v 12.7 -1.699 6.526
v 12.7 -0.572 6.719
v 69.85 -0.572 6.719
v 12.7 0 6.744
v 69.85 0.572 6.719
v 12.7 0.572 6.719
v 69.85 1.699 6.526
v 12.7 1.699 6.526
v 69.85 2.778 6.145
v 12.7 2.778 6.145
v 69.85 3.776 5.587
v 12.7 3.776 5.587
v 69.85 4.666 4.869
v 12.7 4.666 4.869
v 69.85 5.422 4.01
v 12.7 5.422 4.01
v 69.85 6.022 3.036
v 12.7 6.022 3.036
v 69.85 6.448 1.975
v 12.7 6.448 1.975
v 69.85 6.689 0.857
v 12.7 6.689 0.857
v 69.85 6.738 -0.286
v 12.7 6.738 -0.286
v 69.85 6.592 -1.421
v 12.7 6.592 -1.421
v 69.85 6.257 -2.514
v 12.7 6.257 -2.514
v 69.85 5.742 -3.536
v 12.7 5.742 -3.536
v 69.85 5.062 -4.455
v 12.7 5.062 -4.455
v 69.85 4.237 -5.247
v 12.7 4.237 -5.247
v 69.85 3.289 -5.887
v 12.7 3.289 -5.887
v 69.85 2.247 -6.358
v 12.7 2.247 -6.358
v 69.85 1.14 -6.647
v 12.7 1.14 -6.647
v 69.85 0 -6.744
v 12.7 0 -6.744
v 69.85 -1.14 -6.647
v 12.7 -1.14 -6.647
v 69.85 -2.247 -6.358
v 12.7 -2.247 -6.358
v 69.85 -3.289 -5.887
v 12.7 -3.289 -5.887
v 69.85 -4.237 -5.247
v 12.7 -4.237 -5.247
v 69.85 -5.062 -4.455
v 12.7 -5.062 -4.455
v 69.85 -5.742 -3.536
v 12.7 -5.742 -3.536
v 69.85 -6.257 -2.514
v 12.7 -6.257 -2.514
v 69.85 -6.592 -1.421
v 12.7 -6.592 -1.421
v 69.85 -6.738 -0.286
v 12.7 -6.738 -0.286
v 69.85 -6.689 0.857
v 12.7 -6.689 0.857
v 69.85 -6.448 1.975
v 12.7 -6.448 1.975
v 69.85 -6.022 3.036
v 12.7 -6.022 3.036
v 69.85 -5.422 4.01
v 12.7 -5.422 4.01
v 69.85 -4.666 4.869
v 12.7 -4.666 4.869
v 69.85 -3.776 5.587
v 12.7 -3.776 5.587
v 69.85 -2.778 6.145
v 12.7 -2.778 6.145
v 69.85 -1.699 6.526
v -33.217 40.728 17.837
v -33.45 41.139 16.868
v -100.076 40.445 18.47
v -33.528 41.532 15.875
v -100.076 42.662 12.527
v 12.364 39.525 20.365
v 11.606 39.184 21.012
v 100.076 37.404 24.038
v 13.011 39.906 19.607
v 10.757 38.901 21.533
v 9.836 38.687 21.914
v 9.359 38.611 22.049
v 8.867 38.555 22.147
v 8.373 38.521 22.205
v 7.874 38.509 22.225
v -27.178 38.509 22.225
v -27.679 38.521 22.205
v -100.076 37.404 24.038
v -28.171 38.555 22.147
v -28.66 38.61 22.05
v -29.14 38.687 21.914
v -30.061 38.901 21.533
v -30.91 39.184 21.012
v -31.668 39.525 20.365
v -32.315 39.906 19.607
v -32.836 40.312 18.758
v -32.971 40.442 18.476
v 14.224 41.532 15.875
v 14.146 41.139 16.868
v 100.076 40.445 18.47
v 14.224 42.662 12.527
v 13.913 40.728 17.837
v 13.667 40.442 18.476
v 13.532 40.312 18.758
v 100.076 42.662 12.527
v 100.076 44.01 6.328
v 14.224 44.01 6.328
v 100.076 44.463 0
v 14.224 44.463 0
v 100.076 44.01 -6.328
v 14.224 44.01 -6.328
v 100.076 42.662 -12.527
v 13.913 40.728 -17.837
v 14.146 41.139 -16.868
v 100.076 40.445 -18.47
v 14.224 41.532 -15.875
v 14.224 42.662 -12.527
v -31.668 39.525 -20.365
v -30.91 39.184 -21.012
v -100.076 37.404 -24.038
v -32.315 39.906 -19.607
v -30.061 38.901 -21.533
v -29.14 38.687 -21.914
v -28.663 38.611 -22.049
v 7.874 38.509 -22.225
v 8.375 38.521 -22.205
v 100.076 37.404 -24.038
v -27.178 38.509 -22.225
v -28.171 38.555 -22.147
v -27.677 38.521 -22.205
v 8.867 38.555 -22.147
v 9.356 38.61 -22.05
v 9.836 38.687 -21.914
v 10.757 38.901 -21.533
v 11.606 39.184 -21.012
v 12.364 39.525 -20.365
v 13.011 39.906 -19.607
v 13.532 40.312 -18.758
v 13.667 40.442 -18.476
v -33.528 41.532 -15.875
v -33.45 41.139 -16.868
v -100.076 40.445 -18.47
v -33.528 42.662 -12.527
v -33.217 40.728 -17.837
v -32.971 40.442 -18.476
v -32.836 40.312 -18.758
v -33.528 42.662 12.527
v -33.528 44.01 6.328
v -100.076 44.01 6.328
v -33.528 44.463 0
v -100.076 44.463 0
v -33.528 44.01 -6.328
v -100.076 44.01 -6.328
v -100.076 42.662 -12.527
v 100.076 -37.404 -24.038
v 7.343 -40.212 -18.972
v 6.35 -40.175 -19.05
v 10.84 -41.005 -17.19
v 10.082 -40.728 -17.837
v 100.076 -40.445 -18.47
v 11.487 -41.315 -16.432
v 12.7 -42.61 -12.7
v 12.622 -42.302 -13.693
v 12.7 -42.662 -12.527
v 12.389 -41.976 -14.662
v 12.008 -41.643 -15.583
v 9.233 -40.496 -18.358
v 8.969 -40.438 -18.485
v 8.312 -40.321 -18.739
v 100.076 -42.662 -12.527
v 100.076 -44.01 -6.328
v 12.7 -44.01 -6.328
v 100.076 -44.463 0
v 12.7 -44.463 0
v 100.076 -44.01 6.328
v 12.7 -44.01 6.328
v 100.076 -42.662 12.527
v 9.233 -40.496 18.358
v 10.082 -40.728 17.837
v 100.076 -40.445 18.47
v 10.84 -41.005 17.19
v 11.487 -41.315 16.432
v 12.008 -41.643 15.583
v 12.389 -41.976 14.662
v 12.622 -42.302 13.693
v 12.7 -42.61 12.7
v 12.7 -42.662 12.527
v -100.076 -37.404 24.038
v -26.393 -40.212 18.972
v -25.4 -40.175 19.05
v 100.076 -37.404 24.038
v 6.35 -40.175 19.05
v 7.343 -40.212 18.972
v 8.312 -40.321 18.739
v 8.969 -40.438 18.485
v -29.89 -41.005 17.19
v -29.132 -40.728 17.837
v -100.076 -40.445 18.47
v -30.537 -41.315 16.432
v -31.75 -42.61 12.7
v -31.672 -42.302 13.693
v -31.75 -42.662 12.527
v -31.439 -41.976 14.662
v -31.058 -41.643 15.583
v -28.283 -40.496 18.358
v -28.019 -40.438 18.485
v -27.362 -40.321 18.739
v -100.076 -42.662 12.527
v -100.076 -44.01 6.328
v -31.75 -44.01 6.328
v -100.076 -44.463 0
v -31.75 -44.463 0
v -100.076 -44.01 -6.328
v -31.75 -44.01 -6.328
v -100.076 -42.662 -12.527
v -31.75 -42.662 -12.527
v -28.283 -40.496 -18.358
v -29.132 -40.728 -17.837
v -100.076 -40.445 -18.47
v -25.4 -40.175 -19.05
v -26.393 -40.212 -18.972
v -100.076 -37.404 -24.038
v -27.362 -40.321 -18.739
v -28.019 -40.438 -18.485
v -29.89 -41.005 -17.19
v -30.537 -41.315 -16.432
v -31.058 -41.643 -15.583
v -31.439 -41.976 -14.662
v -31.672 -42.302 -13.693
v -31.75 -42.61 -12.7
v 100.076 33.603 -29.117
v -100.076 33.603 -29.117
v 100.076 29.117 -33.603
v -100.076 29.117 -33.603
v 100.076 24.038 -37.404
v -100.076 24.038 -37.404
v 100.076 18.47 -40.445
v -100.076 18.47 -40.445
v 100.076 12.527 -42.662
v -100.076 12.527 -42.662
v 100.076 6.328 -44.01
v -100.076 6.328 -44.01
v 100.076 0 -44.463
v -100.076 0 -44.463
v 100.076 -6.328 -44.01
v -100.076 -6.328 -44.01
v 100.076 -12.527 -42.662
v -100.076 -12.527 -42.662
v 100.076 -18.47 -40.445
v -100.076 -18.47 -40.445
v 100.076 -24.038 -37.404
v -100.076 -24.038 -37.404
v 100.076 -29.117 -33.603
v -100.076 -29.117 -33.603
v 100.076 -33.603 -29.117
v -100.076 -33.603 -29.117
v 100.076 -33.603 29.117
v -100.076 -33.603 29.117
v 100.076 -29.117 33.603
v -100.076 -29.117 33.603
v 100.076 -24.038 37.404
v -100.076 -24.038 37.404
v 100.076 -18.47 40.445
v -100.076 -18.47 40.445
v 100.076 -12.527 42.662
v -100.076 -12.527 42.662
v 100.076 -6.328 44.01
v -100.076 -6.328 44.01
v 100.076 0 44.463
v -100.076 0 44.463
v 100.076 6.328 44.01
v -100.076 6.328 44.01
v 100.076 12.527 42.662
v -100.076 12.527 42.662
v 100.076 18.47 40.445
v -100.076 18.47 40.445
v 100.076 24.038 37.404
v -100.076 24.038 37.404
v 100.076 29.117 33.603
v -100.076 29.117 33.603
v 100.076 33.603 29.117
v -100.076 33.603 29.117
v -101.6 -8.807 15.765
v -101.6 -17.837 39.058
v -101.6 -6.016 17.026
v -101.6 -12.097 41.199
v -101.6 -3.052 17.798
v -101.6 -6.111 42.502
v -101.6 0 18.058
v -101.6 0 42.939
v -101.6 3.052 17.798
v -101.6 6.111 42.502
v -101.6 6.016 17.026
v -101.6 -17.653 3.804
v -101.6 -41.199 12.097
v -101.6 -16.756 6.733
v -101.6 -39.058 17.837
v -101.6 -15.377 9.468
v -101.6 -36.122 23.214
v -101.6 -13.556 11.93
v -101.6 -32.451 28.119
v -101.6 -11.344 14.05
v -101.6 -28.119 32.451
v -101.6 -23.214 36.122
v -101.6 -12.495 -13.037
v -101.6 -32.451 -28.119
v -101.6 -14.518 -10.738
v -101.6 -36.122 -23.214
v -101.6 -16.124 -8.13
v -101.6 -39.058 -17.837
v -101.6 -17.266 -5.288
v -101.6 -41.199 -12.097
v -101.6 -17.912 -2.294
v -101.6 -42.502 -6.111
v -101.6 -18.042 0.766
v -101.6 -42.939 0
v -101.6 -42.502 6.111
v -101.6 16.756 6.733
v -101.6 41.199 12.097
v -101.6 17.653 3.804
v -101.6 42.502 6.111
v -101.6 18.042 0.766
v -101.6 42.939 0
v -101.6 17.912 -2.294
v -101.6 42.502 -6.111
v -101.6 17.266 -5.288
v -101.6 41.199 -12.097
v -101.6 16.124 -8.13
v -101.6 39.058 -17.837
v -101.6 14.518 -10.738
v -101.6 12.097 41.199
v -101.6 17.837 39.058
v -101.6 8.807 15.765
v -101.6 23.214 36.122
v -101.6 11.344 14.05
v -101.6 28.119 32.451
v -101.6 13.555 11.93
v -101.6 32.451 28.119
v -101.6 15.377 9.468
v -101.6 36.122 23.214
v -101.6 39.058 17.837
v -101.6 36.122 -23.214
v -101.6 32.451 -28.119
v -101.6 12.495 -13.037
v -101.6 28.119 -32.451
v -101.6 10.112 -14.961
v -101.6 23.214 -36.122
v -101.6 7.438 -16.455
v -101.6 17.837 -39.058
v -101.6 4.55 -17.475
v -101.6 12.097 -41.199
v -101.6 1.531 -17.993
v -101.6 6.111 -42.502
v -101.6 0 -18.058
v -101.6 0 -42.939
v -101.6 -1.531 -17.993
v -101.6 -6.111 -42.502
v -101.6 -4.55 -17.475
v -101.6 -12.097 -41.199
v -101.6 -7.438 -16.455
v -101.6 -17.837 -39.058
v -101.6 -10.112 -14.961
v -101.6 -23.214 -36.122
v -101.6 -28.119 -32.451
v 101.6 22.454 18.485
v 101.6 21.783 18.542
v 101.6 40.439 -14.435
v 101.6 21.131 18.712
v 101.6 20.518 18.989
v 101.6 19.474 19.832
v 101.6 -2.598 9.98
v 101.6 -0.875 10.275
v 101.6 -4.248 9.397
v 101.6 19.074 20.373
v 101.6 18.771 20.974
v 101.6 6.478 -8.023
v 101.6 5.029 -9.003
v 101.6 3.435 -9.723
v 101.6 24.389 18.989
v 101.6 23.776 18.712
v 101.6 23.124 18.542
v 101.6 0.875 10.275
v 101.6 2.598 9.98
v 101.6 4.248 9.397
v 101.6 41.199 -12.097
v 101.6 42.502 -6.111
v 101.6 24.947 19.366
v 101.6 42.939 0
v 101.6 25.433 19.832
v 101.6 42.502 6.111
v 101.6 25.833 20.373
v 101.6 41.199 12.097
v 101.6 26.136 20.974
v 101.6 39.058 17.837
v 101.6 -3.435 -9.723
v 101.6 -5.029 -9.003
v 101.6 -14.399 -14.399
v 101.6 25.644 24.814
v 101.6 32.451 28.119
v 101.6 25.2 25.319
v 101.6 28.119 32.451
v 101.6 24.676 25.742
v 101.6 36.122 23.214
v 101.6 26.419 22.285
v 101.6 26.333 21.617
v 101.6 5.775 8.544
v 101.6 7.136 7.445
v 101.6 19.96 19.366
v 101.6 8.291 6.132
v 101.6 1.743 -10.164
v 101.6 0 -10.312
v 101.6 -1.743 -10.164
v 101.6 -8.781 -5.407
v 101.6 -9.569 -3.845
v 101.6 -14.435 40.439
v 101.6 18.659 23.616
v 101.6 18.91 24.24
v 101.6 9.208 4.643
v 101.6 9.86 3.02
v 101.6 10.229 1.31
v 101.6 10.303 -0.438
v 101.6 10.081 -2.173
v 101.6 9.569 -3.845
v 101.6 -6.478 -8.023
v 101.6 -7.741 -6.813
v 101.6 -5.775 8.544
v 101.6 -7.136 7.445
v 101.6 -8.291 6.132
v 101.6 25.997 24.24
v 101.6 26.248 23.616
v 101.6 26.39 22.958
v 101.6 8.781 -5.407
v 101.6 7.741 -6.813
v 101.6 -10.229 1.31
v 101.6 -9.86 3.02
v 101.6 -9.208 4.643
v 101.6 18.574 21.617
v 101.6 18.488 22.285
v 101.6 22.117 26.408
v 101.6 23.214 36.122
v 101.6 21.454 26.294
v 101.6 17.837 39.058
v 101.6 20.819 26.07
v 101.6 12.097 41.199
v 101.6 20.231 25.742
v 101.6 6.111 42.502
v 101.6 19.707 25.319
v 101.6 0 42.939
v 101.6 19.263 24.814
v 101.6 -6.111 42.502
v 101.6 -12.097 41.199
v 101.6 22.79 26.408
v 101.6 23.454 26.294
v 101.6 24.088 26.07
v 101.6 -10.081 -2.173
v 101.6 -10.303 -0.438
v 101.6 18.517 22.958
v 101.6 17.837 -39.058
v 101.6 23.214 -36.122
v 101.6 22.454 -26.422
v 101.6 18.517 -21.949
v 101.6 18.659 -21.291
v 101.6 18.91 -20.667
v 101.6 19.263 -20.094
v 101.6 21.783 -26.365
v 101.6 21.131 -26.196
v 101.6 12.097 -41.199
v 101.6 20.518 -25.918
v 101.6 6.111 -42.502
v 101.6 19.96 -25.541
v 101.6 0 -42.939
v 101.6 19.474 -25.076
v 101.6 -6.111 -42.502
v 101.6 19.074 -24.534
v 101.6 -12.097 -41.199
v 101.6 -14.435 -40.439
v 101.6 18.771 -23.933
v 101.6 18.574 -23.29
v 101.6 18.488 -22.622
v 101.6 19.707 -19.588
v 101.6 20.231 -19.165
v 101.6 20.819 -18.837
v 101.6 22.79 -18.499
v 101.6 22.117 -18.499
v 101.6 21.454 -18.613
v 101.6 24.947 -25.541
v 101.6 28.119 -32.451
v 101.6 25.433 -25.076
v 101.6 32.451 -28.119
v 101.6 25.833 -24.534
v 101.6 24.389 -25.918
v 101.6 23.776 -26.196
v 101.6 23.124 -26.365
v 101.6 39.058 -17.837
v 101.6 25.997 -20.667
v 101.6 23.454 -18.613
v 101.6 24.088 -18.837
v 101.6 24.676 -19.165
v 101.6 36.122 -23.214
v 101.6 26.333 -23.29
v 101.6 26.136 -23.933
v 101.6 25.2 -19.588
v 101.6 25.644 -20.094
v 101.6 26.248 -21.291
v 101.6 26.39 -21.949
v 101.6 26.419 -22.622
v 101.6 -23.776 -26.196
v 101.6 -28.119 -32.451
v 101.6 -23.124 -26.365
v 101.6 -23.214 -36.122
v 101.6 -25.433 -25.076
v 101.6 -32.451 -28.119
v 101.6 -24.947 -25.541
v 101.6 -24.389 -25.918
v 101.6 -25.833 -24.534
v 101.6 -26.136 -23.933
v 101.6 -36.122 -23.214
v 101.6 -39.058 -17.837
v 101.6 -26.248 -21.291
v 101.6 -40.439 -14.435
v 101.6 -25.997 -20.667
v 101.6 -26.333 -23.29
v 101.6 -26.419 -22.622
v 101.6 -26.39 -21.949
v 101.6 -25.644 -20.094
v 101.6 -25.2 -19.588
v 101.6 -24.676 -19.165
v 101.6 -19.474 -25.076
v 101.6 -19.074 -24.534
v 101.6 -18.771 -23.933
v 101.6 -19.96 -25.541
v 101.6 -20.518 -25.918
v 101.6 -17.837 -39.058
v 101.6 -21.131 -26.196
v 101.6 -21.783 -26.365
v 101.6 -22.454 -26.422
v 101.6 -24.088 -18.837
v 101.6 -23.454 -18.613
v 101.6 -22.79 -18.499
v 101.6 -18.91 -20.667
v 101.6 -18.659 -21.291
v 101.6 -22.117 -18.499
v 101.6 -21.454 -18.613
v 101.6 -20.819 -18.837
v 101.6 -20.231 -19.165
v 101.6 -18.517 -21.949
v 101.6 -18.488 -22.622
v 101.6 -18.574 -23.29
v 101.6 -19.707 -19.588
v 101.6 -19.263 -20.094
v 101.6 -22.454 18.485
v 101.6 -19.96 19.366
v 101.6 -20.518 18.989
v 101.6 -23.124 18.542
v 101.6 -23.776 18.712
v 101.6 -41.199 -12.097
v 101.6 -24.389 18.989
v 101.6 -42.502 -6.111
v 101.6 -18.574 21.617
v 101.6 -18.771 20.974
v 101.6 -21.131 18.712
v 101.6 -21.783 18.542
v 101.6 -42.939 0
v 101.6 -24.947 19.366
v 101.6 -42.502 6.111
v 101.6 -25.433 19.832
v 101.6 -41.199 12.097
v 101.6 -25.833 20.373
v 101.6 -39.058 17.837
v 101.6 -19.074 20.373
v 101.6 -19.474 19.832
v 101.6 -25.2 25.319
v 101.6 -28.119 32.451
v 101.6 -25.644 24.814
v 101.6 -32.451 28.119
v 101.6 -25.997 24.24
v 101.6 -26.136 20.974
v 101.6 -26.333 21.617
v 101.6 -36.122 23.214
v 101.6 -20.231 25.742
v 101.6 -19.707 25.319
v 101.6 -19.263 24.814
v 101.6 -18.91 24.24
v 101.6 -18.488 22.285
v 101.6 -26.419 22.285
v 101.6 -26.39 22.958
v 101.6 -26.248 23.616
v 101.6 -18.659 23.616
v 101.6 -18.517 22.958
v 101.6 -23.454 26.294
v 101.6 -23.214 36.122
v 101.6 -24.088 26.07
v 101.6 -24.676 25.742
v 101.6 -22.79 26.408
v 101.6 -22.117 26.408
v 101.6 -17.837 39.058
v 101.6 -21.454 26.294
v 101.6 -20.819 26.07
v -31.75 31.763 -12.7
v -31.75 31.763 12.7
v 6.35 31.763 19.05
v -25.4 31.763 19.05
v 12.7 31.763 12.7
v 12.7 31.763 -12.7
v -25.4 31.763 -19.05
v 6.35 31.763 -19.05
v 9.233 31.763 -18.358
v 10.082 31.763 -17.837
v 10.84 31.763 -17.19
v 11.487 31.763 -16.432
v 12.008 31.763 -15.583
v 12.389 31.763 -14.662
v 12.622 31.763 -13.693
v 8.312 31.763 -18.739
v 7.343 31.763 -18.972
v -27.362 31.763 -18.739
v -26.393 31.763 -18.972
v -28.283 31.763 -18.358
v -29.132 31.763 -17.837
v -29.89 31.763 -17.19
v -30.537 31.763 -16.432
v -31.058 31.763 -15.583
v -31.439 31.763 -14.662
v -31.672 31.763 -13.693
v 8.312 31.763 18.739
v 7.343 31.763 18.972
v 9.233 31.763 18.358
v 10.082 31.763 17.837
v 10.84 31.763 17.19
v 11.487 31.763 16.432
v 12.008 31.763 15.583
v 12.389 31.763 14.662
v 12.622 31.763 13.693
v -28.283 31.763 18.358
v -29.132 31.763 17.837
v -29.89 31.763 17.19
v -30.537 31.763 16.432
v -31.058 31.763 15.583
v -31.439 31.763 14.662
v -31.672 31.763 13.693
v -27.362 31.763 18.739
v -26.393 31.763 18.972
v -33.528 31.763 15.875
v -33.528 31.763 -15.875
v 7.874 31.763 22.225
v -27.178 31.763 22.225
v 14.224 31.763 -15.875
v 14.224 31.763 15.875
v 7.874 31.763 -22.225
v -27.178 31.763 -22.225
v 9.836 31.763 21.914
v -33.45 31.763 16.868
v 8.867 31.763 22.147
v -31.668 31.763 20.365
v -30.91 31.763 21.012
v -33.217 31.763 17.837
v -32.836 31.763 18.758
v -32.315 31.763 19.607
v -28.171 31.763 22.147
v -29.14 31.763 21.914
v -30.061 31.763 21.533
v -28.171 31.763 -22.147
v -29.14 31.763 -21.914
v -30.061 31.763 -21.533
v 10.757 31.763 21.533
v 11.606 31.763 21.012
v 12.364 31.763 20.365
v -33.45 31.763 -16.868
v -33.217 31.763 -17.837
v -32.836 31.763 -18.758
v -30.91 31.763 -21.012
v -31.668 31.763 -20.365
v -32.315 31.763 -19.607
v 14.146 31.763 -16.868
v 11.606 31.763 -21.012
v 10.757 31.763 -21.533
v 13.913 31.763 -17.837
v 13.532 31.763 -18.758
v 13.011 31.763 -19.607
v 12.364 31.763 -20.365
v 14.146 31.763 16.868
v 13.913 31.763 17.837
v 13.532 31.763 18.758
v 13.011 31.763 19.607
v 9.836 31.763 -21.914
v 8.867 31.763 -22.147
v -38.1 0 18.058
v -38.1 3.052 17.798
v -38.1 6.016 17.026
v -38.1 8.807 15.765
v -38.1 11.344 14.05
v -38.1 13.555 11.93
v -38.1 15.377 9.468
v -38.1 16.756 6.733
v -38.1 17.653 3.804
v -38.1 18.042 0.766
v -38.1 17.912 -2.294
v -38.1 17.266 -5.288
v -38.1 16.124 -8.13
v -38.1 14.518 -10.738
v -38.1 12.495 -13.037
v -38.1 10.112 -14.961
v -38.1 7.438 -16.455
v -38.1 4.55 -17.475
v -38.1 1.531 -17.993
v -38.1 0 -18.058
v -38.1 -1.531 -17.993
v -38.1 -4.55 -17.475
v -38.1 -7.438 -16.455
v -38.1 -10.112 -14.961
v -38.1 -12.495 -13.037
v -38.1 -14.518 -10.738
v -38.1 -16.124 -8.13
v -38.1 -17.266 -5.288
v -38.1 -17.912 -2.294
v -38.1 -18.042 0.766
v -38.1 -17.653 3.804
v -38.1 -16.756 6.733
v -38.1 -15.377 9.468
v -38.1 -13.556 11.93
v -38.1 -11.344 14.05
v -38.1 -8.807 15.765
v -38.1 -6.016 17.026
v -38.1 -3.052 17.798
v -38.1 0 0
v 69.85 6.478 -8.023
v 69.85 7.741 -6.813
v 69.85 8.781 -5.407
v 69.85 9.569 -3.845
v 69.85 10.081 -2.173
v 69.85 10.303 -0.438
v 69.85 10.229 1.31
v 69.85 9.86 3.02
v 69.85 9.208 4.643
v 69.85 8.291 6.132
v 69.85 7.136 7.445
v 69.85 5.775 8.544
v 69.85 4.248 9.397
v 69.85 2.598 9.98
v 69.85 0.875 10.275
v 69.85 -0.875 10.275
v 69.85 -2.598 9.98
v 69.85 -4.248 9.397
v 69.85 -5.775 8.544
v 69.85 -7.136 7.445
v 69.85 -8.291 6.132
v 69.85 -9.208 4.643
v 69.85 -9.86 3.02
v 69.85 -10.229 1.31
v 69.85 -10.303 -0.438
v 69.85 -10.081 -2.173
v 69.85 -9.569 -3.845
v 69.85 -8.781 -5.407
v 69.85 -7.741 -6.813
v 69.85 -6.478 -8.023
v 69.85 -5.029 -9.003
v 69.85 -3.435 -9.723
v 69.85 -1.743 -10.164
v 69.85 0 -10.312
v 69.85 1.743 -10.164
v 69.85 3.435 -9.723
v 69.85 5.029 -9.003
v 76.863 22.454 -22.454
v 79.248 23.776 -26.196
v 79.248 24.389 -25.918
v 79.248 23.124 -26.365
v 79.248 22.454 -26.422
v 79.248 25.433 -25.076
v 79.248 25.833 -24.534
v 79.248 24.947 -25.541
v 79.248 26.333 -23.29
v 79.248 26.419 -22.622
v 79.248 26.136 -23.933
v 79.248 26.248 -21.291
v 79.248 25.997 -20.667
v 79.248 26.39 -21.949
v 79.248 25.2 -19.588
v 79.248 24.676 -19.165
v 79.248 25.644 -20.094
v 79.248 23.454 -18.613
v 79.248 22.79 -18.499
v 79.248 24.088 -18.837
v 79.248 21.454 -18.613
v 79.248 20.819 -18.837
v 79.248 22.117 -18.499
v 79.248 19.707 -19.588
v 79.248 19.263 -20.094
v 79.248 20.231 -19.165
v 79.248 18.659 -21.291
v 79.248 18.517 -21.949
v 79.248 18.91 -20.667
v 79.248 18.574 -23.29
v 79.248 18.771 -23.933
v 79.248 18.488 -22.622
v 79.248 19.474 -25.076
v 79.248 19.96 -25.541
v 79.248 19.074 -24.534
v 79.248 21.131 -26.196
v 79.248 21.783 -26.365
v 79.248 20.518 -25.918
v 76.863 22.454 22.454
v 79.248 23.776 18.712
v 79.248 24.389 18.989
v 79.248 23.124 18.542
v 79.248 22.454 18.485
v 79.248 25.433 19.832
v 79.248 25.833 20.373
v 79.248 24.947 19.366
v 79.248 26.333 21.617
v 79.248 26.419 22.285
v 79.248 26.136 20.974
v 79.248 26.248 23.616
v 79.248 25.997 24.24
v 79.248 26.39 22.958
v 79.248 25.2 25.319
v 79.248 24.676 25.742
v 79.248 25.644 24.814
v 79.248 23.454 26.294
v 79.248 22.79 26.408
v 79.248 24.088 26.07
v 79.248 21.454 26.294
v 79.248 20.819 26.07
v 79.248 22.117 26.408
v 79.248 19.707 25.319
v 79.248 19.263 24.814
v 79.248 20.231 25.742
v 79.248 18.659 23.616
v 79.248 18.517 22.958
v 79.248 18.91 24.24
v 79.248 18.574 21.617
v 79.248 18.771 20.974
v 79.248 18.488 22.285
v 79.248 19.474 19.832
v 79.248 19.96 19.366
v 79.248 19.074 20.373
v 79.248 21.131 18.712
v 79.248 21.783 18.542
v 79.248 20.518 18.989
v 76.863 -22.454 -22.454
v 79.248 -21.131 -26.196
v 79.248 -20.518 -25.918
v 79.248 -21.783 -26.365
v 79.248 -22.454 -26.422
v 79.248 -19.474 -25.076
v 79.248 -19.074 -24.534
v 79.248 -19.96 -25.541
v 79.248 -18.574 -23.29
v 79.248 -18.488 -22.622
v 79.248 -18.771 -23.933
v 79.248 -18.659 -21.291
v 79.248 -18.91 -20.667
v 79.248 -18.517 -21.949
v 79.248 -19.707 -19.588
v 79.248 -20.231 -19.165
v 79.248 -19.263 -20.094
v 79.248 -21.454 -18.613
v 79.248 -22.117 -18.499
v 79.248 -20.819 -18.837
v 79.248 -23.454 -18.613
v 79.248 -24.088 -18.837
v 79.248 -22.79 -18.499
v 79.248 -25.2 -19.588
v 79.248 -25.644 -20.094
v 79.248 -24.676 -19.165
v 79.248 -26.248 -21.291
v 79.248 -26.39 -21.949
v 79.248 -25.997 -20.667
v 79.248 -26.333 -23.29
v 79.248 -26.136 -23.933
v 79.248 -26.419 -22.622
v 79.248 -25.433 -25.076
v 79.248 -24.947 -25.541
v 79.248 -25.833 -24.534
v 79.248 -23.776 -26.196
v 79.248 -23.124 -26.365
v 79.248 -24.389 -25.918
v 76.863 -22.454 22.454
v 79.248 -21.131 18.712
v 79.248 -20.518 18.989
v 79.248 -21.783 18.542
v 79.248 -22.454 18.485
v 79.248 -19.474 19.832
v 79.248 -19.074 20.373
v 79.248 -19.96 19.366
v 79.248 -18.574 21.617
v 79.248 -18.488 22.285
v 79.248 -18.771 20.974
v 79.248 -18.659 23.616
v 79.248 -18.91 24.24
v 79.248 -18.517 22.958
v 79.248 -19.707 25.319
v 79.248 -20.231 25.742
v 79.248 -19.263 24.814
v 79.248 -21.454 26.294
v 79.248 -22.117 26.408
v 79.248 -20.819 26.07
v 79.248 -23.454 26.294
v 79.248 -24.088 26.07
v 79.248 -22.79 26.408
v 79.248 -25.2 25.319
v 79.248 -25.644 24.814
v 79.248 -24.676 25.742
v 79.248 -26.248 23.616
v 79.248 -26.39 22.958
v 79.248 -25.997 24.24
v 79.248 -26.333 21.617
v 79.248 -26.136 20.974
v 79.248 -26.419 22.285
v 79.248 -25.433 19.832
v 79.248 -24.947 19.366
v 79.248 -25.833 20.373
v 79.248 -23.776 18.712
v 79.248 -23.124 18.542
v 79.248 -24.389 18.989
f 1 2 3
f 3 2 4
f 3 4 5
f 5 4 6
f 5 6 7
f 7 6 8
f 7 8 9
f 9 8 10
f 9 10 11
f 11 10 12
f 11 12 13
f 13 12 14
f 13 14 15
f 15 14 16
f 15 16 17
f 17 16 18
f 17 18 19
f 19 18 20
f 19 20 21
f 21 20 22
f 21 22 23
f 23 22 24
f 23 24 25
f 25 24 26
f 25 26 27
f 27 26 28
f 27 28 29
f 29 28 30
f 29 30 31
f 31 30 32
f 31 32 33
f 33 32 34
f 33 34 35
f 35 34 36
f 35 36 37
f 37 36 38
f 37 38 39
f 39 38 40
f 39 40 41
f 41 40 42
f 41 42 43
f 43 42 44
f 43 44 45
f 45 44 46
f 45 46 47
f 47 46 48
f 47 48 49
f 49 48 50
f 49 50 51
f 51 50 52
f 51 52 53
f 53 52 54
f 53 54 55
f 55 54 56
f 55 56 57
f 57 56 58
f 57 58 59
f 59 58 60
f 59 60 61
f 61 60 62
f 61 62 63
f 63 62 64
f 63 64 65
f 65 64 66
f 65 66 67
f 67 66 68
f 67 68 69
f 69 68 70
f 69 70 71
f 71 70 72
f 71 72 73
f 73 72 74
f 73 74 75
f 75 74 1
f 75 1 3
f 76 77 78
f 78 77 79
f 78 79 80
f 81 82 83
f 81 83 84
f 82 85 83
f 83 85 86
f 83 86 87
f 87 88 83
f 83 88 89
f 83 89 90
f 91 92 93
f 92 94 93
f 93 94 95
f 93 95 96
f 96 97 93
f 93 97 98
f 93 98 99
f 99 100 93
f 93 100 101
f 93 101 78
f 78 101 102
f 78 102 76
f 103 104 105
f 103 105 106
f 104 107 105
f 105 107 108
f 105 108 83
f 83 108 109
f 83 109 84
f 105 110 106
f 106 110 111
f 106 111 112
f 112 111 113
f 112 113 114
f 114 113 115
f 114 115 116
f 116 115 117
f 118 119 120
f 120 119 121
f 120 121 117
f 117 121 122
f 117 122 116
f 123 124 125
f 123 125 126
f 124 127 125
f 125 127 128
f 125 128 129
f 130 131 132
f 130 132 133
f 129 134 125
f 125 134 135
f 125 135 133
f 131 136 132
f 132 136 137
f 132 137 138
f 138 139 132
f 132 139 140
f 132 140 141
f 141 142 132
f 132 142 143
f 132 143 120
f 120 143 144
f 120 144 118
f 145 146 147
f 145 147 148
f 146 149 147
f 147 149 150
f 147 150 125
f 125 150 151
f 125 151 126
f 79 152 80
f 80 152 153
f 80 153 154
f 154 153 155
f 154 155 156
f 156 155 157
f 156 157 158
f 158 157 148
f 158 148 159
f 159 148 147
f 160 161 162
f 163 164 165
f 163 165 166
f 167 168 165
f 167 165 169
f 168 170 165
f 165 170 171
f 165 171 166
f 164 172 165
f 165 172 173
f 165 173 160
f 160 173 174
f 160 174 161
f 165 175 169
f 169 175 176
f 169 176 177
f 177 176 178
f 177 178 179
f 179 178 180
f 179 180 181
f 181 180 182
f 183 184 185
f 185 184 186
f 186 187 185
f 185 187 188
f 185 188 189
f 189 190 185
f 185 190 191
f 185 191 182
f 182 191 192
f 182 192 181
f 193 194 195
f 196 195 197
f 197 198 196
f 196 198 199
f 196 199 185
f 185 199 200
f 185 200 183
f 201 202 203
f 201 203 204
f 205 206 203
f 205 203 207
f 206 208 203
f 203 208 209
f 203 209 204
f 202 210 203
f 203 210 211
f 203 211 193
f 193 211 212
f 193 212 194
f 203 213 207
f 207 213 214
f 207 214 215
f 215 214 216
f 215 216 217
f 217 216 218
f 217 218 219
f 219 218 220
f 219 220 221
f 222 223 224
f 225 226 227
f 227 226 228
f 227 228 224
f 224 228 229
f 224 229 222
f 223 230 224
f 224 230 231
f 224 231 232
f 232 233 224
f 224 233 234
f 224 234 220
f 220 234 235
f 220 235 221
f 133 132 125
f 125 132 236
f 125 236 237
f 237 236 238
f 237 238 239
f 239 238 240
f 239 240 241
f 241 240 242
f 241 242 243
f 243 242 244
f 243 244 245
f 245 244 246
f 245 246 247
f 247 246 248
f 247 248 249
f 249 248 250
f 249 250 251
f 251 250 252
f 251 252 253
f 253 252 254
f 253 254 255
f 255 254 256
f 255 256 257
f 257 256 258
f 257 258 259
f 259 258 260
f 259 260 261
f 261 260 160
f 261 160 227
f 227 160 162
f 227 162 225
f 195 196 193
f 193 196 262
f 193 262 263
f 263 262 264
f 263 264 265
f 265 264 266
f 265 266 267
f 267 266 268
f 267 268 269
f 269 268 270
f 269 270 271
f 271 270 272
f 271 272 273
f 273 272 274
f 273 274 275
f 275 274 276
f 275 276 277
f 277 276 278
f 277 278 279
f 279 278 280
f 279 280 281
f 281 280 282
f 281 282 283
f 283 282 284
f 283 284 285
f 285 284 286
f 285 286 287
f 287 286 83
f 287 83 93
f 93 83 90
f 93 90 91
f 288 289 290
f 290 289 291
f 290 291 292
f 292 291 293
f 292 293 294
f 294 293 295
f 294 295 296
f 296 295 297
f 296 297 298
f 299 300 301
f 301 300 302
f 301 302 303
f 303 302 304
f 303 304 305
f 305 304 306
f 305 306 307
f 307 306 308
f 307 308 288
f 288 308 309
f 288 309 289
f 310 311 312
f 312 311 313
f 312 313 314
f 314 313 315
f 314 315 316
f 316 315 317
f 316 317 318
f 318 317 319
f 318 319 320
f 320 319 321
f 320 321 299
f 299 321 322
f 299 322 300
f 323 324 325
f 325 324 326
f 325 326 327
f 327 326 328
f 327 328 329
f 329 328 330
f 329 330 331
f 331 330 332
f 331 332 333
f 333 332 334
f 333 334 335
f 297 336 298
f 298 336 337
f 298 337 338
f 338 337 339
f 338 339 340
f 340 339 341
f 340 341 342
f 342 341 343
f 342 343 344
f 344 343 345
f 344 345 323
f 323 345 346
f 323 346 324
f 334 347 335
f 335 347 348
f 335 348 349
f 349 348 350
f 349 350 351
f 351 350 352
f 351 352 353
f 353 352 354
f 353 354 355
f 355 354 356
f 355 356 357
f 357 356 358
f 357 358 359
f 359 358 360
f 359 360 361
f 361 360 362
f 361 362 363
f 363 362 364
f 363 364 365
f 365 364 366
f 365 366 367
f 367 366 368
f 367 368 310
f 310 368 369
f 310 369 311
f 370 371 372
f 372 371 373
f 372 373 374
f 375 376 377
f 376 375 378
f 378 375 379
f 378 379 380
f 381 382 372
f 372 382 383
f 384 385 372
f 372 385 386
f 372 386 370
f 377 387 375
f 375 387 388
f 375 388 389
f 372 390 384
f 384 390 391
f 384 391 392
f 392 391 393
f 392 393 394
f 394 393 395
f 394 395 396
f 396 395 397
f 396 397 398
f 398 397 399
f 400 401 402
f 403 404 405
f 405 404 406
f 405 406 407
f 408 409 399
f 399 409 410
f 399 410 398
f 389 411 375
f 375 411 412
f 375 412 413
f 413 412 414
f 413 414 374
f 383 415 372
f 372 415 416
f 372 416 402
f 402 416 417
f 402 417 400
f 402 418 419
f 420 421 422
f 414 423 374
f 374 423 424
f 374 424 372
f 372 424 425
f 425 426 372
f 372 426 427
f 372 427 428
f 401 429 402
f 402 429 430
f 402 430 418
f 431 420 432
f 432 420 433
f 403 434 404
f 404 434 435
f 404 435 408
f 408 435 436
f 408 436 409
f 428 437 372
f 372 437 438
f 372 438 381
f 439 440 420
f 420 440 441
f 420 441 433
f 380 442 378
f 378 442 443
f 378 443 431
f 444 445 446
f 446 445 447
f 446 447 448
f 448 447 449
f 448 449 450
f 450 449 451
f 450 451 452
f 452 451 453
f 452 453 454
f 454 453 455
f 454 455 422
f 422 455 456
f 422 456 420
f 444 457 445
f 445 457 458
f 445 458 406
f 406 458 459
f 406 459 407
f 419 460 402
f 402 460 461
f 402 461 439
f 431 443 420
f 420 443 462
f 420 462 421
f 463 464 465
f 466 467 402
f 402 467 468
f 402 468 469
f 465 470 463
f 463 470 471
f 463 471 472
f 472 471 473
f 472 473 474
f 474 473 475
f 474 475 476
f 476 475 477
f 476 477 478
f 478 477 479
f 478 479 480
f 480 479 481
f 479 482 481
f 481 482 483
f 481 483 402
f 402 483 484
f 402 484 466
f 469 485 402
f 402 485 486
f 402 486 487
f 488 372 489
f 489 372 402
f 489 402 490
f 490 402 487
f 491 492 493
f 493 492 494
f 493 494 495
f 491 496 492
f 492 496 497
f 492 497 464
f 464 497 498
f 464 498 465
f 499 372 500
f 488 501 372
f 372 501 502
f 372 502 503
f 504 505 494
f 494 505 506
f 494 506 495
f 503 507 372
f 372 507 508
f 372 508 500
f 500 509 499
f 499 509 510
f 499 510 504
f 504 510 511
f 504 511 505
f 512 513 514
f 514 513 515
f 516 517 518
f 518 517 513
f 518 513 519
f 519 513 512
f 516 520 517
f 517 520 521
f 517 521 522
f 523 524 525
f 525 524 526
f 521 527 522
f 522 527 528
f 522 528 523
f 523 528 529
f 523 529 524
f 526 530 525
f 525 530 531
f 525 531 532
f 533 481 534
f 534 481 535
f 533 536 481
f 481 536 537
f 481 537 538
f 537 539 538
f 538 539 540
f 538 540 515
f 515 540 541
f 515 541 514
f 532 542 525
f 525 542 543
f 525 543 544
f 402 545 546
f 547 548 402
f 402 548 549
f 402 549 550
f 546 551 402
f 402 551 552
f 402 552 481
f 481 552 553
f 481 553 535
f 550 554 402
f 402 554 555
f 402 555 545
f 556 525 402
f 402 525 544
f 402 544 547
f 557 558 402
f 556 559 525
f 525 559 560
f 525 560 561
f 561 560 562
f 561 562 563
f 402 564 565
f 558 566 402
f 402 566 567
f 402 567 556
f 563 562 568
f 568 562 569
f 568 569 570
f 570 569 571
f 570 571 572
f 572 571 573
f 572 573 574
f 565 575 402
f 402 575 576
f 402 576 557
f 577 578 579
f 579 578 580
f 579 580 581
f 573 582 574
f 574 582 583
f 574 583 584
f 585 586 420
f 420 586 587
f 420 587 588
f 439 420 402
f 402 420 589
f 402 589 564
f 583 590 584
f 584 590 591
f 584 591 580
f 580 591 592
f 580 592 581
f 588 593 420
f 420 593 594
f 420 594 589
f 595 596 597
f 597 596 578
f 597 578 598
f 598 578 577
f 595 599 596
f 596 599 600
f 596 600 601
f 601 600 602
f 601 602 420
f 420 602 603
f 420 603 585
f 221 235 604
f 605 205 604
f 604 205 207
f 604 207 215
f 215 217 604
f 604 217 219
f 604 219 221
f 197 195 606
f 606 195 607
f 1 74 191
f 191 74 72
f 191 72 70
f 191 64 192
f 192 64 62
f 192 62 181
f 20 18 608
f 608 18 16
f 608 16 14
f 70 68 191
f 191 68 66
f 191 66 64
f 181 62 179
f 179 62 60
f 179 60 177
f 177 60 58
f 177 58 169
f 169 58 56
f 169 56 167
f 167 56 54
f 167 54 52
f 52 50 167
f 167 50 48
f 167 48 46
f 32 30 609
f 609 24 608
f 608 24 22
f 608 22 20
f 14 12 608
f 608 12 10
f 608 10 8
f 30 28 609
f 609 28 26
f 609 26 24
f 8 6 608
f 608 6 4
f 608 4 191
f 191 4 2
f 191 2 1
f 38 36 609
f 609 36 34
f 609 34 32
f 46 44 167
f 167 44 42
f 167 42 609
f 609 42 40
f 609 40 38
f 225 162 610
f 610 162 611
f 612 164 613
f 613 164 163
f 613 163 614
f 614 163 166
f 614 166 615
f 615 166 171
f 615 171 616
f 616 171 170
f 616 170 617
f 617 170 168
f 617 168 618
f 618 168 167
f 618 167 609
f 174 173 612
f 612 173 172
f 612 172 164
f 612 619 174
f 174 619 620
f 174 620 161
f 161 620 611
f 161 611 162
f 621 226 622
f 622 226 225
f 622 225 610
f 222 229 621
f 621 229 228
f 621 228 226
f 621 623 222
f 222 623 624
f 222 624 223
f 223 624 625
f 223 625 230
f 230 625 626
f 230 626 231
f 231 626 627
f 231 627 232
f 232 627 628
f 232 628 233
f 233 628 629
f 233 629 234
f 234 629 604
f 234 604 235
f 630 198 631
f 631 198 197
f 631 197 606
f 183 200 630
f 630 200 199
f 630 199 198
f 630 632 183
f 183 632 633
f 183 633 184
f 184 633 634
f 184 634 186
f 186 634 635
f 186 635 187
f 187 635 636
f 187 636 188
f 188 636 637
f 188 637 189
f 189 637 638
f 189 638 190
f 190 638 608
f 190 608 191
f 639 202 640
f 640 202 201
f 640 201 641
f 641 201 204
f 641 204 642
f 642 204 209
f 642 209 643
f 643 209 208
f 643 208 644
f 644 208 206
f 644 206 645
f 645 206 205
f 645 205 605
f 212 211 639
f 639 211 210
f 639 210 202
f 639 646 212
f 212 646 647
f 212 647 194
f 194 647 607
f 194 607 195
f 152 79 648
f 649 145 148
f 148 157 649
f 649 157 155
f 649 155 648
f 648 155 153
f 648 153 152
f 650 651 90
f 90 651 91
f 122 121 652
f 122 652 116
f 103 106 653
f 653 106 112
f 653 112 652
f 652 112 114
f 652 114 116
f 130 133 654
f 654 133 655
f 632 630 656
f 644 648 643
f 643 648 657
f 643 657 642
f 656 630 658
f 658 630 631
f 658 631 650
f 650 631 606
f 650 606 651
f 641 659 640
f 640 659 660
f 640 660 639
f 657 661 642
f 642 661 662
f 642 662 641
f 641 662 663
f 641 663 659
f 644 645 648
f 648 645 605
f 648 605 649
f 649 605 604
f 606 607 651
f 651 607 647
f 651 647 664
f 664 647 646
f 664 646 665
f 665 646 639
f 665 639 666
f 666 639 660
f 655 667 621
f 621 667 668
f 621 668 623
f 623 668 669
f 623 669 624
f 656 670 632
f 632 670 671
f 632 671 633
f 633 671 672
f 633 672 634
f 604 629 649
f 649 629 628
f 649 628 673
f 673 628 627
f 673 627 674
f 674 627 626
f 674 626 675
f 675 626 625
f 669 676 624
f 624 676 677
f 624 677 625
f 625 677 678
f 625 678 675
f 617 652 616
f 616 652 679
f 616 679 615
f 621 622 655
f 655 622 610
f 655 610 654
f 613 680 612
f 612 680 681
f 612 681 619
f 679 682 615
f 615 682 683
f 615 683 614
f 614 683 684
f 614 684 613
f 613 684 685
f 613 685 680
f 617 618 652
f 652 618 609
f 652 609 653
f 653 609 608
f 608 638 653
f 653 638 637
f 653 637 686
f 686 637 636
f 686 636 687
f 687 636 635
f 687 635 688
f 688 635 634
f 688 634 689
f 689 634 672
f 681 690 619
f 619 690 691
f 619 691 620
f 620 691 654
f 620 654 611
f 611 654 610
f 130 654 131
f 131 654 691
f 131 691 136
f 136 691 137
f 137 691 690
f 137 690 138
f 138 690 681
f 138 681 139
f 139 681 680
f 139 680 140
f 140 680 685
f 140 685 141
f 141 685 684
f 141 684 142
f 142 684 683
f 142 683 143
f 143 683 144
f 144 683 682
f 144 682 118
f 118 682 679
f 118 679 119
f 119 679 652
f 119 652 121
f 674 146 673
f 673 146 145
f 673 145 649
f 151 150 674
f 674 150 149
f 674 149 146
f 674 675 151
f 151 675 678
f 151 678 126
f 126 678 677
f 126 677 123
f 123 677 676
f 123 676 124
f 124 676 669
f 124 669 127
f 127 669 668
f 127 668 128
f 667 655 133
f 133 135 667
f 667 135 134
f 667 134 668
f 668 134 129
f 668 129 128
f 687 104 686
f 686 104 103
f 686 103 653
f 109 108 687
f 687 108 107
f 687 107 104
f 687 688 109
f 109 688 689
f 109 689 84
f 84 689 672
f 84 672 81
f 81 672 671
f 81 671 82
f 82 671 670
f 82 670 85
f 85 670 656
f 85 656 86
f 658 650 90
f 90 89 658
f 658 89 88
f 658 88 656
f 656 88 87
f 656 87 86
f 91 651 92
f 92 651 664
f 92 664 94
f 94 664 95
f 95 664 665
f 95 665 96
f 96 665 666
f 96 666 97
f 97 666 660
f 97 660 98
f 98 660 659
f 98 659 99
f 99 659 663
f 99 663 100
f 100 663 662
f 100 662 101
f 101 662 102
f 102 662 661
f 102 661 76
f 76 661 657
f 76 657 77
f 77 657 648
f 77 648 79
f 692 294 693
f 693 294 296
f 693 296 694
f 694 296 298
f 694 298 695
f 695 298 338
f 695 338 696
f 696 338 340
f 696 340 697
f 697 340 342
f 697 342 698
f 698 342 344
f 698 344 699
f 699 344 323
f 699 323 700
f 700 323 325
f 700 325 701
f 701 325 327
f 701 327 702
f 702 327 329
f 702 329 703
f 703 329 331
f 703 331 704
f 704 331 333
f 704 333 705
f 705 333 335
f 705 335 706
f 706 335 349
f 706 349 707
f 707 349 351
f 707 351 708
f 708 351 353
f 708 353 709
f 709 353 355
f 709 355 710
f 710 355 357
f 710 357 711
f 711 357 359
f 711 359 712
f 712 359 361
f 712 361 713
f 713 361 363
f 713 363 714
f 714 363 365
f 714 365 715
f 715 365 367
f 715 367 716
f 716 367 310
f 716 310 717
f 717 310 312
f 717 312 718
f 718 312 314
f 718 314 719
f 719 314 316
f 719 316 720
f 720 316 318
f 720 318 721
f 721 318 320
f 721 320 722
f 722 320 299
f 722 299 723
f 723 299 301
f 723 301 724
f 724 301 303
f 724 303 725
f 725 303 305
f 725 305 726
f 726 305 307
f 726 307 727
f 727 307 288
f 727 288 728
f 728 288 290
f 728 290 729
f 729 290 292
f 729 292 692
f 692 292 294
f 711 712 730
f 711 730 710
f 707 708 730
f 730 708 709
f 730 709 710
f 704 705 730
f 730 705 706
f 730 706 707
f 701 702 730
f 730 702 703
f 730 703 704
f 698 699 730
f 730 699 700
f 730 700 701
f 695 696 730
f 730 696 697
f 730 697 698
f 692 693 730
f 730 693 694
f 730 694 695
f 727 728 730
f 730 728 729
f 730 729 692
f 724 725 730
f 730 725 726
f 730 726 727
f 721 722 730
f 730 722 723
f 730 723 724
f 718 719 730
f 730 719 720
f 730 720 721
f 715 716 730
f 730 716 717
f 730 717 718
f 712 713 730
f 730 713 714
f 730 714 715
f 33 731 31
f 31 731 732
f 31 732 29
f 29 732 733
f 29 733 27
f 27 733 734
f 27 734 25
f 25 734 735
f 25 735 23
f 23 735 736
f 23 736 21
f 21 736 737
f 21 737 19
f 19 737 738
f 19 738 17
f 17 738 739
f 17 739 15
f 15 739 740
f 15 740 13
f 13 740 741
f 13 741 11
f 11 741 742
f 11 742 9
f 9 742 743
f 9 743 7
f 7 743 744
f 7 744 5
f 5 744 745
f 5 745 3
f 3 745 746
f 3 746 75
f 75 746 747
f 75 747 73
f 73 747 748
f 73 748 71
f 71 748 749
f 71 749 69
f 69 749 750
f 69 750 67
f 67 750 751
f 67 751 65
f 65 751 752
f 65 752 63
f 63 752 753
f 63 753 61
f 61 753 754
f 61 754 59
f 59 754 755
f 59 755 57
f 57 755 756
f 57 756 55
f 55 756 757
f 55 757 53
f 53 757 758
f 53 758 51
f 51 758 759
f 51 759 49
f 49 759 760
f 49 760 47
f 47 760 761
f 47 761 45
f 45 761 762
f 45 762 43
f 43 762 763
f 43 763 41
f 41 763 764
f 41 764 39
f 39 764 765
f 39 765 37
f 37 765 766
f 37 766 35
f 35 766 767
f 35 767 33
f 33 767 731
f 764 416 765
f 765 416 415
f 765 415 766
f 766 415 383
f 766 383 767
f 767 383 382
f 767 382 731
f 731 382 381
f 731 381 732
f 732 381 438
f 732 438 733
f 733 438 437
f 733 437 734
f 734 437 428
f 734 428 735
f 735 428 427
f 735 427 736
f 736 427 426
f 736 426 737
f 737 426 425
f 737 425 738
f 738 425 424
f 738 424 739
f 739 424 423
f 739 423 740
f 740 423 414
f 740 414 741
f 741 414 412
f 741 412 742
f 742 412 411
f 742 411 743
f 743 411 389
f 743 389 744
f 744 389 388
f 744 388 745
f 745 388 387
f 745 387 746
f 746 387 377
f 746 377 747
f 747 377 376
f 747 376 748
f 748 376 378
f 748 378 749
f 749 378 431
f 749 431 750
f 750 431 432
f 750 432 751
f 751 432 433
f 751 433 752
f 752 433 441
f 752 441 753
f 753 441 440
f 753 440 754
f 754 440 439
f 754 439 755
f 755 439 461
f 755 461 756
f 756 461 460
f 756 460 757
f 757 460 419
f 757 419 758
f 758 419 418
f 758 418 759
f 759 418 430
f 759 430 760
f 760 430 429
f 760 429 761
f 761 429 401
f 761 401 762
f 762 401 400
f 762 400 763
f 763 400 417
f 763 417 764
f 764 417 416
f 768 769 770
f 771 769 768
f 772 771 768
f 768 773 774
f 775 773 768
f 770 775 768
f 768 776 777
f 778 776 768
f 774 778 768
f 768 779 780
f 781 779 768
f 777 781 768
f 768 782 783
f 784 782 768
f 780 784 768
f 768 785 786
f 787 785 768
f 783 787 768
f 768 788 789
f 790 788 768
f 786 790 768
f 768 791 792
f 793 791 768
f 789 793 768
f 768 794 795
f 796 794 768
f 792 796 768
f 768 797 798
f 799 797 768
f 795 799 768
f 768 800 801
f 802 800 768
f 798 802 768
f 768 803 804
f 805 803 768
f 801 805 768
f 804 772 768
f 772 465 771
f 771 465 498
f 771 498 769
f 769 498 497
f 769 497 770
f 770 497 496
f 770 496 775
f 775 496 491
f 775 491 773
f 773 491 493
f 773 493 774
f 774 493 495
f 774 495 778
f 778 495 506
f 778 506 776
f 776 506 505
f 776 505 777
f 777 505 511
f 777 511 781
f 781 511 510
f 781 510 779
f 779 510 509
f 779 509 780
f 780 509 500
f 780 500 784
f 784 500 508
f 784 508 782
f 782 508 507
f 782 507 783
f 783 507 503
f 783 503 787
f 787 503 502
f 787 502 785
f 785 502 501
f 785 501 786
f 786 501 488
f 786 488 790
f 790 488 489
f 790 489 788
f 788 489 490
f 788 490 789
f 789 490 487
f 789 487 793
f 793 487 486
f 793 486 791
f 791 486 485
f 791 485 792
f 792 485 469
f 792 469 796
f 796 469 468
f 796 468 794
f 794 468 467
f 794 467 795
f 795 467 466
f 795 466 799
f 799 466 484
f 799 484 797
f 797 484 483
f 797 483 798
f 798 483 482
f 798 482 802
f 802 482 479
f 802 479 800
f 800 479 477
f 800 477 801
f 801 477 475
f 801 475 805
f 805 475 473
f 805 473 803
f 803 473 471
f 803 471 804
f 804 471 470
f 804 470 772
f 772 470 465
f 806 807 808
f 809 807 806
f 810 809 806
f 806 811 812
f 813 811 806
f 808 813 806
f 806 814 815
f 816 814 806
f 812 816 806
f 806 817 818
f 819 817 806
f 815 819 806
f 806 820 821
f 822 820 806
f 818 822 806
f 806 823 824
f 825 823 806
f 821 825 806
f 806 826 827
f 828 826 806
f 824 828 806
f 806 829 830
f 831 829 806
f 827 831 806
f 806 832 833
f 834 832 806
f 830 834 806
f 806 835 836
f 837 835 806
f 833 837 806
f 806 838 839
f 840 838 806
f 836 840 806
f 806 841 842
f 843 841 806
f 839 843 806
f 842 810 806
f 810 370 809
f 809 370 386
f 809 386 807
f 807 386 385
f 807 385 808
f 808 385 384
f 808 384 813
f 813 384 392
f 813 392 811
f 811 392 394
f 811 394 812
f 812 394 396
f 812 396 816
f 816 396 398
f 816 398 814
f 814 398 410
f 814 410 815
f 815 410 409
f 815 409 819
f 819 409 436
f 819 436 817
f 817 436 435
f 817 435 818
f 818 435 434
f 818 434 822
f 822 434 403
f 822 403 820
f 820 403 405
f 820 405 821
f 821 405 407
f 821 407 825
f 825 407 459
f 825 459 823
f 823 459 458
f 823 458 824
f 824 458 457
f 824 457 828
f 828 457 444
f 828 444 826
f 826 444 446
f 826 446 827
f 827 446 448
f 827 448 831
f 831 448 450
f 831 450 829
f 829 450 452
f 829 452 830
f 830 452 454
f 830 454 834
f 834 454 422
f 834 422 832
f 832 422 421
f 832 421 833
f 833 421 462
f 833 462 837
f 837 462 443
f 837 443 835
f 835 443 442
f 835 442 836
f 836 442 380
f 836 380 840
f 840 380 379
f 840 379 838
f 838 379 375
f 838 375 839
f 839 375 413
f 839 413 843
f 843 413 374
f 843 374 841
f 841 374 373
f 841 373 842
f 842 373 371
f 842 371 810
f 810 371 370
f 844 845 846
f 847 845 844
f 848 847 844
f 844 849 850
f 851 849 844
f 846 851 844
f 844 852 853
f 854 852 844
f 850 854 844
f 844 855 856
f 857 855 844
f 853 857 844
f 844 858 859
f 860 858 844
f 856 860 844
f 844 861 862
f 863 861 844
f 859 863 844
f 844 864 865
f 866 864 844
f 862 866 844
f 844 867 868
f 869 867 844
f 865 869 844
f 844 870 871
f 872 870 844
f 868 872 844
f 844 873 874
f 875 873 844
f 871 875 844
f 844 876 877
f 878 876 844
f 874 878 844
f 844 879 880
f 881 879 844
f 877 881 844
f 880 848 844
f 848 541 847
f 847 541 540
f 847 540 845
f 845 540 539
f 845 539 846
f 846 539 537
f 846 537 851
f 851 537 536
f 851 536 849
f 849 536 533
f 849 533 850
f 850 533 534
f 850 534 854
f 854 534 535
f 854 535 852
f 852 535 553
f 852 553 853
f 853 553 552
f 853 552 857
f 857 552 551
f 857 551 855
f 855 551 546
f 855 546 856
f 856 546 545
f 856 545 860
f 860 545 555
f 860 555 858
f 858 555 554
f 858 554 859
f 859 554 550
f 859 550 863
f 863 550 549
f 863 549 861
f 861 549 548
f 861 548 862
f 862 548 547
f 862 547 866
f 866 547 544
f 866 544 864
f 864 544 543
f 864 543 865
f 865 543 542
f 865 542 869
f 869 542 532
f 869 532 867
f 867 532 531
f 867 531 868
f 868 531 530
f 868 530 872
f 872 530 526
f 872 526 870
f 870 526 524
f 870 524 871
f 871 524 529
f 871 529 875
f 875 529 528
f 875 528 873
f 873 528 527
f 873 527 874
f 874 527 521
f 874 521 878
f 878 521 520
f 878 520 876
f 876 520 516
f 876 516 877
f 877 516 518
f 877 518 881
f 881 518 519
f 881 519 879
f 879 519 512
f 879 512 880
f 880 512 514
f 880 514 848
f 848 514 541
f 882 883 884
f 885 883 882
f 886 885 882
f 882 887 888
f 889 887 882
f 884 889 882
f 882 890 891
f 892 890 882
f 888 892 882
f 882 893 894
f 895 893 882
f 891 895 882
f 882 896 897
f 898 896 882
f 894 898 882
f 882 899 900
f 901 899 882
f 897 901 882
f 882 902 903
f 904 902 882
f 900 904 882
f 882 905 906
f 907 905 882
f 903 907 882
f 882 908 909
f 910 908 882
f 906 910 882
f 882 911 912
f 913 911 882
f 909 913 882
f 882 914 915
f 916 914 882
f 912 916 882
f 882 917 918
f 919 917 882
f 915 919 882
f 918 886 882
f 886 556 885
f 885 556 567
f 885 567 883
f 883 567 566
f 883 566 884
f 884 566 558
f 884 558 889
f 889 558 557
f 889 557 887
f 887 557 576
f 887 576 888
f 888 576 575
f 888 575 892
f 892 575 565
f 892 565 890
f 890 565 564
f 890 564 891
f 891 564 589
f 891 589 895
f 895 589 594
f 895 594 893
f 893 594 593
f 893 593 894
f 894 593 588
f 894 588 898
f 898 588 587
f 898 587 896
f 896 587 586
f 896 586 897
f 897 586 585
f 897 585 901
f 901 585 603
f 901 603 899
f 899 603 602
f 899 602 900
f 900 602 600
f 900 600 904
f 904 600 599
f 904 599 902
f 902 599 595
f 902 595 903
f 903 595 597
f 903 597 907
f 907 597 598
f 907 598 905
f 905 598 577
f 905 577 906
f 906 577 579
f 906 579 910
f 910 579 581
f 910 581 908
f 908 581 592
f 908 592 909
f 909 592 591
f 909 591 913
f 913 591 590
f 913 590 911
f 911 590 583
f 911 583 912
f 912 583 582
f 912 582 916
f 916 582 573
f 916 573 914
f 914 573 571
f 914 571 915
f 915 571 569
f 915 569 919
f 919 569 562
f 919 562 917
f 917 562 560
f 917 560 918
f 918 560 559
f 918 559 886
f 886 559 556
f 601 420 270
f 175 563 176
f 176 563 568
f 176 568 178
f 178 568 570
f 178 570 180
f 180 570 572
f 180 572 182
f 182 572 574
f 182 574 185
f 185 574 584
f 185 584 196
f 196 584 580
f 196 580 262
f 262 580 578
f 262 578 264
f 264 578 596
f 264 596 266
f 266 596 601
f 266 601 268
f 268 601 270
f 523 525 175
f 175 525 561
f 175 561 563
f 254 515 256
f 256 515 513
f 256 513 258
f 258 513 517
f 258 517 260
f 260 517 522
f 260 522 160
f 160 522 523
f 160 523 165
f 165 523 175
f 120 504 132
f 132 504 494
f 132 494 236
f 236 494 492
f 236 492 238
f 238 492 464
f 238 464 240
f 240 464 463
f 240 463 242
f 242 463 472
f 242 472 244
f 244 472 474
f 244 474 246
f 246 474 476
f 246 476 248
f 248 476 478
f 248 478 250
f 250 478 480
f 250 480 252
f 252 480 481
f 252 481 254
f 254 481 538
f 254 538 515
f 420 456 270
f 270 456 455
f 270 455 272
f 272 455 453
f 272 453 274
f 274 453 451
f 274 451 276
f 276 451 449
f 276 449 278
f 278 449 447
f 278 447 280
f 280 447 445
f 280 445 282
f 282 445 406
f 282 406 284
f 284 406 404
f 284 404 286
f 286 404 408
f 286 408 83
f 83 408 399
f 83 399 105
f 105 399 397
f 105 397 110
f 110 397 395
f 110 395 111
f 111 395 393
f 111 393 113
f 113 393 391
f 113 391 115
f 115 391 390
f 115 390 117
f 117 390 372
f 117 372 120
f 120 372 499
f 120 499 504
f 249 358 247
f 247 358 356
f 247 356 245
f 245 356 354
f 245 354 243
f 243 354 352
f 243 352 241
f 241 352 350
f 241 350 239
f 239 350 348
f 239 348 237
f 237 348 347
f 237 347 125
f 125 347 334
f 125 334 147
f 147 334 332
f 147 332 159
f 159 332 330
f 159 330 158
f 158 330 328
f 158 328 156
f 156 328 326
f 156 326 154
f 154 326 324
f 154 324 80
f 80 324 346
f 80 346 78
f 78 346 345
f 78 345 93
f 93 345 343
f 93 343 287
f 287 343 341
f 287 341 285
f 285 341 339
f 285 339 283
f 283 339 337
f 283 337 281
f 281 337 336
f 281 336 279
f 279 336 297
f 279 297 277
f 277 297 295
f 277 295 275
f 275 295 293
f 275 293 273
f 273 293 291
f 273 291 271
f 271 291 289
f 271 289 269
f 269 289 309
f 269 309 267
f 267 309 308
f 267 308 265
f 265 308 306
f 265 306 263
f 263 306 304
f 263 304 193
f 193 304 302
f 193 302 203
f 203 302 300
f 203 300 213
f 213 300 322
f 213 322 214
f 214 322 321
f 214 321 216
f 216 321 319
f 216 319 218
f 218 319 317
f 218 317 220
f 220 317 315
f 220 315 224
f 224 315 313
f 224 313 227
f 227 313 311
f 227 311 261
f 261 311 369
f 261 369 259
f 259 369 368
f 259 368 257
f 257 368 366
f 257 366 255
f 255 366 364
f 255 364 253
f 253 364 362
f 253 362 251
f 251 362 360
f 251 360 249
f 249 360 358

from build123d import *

# Parameters (mm, degrees)
SKETCH1_W                   = 203.2
SKETCH1_H                   = 44.4627
CHAMFER1_SIZE               = 1.524
CUT_EXTRUDE2_START          = -88.9254
SKETCH2_W                   = 44.45
SKETCH2_H                   = 38.1
CUT_EXTRUDE2_DEPTH          = 177.8508
FILLET1_R                   = 6.35
CUT_EXTRUDE4_START          = 31.7627
SKETCH3_W                   = 47.752
SKETCH3_H                   = 44.45
CUT_EXTRUDE4_DEPTH          = 88.9254
FILLET2_R                   = 6.35
CUT_EXTRUDE6_START          = -101.6
SKETCH4_R                   = 18.0578125
CUT_EXTRUDE6_DEPTH          = 63.5
CUT_EXTRUDE8_START          = 101.6
SKETCH5_R                   = 6.7437
CUT_EXTRUDE8_DEPTH          = 95.25
CUT_EXTRUDE10_START         = 101.6
SKETCH6_R                   = 10.3124
CUT_EXTRUDE10_DEPTH         = 31.75
F_3_8_16_TAPPED_HOLE2_D     = 7.9375
F_3_8_16_TAPPED_HOLE2_DEPTH = 22.352
F_3_8_16_TAPPED_HOLE2_TIP   = 2.384665582


with BuildPart() as part:
    # Sketch1 → Revolve1 (revolve)
    with BuildSketch(Plane(origin=(0, 0, 0), x_dir=(1, 0, 0), z_dir=(0, 1, 0)), mode=Mode.PRIVATE) as revolve1_sk:
        with Locations((0, 22.23135)):
            Rectangle(SKETCH1_W, SKETCH1_H)
    revolve(revolve1_sk.sketch.rotate(Axis((-127, 0, 0), (1, 0, 0)), 180), axis=Axis((-127, 0, 0), (1, 0, 0)))

    # Chamfer1
    chamfer1_edges = [part.edges().sort_by_distance(p)[0] for p in [
        (101.6, 0, -44.4627),
        (-101.6, 0, -44.4627),
    ]]
    chamfer(chamfer1_edges, length=CHAMFER1_SIZE)

    # Sketch2 → Cut-Extrude2 (cut)
    with BuildSketch(Plane(origin=(0, 0, 0), x_dir=(1, 0, 0), z_dir=(0, 1, 0)).offset(CUT_EXTRUDE2_START)):
        with Locations((-9.525, 0)):
            Rectangle(SKETCH2_W, SKETCH2_H)
    extrude(amount=CUT_EXTRUDE2_DEPTH, mode=Mode.SUBTRACT)

    # Fillet1
    fillet1_edges = [part.edges().sort_by_distance(p)[0] for p in [
        (-31.75, 0, -19.05),
        (-31.75, 0, 19.05),
        (12.7, 0, 19.05),
        (12.7, 0, -19.05),
    ]]
    fillet(fillet1_edges, radius=FILLET1_R)

    # Sketch3 → Cut-Extrude4 (cut)
    with BuildSketch(Plane(origin=(0, 0, 0), x_dir=(1, 0, 0), z_dir=(0, 1, 0)).offset(CUT_EXTRUDE4_START)):
        with Locations((-9.652, 0)):
            Rectangle(SKETCH3_W, SKETCH3_H)
    extrude(amount=CUT_EXTRUDE4_DEPTH, mode=Mode.SUBTRACT)

    # Fillet2
    fillet2_edges = [part.edges().sort_by_distance(p)[0] for p in [
        (-33.528, 35.136096599, -22.225),
        (-33.528, 35.136096599, 22.225),
        (14.224, 35.136096599, 22.225),
        (14.224, 35.136096599, -22.225),
    ]]
    fillet(fillet2_edges, radius=FILLET2_R)

    # Sketch4 → Cut-Extrude6 (cut)
    with BuildSketch(Plane(origin=(0, 0, 0), x_dir=(0, 0, -1), z_dir=(1, 0, 0)).offset(CUT_EXTRUDE6_START)):
        Circle(SKETCH4_R)
    extrude(amount=CUT_EXTRUDE6_DEPTH, mode=Mode.SUBTRACT)

    # Sketch5 → Cut-Extrude8 (cut)
    with BuildSketch(Plane(origin=(0, 0, 0), x_dir=(0, 0, -1), z_dir=(1, 0, 0)).offset(CUT_EXTRUDE8_START)):
        Circle(SKETCH5_R)
    extrude(amount=-CUT_EXTRUDE8_DEPTH, mode=Mode.SUBTRACT)

    # Sketch6 → Cut-Extrude10 (cut)
    with BuildSketch(Plane(origin=(0, 0, 0), x_dir=(0, 0, -1), z_dir=(1, 0, 0)).offset(CUT_EXTRUDE10_START)):
        Circle(SKETCH6_R)
    extrude(amount=-CUT_EXTRUDE10_DEPTH, mode=Mode.SUBTRACT)

    # 3/8-16 Tapped Hole2
    with Locations(Plane(origin=(101.6, 0, 0), x_dir=(0, 0, -1), z_dir=(1, 0, 0))):
        with Locations((-22.4536, -22.4536), (22.4536, -22.4536), (-22.4536, 22.4536), (22.4536, 22.4536)):
            Hole(F_3_8_16_TAPPED_HOLE2_D / 2, depth=F_3_8_16_TAPPED_HOLE2_DEPTH)
            with Locations((0, 0, -(F_3_8_16_TAPPED_HOLE2_DEPTH + F_3_8_16_TAPPED_HOLE2_TIP / 2))):  # 118° drill point
                Cone(0, F_3_8_16_TAPPED_HOLE2_D / 2, F_3_8_16_TAPPED_HOLE2_TIP, mode=Mode.SUBTRACT)


solid = part.part
